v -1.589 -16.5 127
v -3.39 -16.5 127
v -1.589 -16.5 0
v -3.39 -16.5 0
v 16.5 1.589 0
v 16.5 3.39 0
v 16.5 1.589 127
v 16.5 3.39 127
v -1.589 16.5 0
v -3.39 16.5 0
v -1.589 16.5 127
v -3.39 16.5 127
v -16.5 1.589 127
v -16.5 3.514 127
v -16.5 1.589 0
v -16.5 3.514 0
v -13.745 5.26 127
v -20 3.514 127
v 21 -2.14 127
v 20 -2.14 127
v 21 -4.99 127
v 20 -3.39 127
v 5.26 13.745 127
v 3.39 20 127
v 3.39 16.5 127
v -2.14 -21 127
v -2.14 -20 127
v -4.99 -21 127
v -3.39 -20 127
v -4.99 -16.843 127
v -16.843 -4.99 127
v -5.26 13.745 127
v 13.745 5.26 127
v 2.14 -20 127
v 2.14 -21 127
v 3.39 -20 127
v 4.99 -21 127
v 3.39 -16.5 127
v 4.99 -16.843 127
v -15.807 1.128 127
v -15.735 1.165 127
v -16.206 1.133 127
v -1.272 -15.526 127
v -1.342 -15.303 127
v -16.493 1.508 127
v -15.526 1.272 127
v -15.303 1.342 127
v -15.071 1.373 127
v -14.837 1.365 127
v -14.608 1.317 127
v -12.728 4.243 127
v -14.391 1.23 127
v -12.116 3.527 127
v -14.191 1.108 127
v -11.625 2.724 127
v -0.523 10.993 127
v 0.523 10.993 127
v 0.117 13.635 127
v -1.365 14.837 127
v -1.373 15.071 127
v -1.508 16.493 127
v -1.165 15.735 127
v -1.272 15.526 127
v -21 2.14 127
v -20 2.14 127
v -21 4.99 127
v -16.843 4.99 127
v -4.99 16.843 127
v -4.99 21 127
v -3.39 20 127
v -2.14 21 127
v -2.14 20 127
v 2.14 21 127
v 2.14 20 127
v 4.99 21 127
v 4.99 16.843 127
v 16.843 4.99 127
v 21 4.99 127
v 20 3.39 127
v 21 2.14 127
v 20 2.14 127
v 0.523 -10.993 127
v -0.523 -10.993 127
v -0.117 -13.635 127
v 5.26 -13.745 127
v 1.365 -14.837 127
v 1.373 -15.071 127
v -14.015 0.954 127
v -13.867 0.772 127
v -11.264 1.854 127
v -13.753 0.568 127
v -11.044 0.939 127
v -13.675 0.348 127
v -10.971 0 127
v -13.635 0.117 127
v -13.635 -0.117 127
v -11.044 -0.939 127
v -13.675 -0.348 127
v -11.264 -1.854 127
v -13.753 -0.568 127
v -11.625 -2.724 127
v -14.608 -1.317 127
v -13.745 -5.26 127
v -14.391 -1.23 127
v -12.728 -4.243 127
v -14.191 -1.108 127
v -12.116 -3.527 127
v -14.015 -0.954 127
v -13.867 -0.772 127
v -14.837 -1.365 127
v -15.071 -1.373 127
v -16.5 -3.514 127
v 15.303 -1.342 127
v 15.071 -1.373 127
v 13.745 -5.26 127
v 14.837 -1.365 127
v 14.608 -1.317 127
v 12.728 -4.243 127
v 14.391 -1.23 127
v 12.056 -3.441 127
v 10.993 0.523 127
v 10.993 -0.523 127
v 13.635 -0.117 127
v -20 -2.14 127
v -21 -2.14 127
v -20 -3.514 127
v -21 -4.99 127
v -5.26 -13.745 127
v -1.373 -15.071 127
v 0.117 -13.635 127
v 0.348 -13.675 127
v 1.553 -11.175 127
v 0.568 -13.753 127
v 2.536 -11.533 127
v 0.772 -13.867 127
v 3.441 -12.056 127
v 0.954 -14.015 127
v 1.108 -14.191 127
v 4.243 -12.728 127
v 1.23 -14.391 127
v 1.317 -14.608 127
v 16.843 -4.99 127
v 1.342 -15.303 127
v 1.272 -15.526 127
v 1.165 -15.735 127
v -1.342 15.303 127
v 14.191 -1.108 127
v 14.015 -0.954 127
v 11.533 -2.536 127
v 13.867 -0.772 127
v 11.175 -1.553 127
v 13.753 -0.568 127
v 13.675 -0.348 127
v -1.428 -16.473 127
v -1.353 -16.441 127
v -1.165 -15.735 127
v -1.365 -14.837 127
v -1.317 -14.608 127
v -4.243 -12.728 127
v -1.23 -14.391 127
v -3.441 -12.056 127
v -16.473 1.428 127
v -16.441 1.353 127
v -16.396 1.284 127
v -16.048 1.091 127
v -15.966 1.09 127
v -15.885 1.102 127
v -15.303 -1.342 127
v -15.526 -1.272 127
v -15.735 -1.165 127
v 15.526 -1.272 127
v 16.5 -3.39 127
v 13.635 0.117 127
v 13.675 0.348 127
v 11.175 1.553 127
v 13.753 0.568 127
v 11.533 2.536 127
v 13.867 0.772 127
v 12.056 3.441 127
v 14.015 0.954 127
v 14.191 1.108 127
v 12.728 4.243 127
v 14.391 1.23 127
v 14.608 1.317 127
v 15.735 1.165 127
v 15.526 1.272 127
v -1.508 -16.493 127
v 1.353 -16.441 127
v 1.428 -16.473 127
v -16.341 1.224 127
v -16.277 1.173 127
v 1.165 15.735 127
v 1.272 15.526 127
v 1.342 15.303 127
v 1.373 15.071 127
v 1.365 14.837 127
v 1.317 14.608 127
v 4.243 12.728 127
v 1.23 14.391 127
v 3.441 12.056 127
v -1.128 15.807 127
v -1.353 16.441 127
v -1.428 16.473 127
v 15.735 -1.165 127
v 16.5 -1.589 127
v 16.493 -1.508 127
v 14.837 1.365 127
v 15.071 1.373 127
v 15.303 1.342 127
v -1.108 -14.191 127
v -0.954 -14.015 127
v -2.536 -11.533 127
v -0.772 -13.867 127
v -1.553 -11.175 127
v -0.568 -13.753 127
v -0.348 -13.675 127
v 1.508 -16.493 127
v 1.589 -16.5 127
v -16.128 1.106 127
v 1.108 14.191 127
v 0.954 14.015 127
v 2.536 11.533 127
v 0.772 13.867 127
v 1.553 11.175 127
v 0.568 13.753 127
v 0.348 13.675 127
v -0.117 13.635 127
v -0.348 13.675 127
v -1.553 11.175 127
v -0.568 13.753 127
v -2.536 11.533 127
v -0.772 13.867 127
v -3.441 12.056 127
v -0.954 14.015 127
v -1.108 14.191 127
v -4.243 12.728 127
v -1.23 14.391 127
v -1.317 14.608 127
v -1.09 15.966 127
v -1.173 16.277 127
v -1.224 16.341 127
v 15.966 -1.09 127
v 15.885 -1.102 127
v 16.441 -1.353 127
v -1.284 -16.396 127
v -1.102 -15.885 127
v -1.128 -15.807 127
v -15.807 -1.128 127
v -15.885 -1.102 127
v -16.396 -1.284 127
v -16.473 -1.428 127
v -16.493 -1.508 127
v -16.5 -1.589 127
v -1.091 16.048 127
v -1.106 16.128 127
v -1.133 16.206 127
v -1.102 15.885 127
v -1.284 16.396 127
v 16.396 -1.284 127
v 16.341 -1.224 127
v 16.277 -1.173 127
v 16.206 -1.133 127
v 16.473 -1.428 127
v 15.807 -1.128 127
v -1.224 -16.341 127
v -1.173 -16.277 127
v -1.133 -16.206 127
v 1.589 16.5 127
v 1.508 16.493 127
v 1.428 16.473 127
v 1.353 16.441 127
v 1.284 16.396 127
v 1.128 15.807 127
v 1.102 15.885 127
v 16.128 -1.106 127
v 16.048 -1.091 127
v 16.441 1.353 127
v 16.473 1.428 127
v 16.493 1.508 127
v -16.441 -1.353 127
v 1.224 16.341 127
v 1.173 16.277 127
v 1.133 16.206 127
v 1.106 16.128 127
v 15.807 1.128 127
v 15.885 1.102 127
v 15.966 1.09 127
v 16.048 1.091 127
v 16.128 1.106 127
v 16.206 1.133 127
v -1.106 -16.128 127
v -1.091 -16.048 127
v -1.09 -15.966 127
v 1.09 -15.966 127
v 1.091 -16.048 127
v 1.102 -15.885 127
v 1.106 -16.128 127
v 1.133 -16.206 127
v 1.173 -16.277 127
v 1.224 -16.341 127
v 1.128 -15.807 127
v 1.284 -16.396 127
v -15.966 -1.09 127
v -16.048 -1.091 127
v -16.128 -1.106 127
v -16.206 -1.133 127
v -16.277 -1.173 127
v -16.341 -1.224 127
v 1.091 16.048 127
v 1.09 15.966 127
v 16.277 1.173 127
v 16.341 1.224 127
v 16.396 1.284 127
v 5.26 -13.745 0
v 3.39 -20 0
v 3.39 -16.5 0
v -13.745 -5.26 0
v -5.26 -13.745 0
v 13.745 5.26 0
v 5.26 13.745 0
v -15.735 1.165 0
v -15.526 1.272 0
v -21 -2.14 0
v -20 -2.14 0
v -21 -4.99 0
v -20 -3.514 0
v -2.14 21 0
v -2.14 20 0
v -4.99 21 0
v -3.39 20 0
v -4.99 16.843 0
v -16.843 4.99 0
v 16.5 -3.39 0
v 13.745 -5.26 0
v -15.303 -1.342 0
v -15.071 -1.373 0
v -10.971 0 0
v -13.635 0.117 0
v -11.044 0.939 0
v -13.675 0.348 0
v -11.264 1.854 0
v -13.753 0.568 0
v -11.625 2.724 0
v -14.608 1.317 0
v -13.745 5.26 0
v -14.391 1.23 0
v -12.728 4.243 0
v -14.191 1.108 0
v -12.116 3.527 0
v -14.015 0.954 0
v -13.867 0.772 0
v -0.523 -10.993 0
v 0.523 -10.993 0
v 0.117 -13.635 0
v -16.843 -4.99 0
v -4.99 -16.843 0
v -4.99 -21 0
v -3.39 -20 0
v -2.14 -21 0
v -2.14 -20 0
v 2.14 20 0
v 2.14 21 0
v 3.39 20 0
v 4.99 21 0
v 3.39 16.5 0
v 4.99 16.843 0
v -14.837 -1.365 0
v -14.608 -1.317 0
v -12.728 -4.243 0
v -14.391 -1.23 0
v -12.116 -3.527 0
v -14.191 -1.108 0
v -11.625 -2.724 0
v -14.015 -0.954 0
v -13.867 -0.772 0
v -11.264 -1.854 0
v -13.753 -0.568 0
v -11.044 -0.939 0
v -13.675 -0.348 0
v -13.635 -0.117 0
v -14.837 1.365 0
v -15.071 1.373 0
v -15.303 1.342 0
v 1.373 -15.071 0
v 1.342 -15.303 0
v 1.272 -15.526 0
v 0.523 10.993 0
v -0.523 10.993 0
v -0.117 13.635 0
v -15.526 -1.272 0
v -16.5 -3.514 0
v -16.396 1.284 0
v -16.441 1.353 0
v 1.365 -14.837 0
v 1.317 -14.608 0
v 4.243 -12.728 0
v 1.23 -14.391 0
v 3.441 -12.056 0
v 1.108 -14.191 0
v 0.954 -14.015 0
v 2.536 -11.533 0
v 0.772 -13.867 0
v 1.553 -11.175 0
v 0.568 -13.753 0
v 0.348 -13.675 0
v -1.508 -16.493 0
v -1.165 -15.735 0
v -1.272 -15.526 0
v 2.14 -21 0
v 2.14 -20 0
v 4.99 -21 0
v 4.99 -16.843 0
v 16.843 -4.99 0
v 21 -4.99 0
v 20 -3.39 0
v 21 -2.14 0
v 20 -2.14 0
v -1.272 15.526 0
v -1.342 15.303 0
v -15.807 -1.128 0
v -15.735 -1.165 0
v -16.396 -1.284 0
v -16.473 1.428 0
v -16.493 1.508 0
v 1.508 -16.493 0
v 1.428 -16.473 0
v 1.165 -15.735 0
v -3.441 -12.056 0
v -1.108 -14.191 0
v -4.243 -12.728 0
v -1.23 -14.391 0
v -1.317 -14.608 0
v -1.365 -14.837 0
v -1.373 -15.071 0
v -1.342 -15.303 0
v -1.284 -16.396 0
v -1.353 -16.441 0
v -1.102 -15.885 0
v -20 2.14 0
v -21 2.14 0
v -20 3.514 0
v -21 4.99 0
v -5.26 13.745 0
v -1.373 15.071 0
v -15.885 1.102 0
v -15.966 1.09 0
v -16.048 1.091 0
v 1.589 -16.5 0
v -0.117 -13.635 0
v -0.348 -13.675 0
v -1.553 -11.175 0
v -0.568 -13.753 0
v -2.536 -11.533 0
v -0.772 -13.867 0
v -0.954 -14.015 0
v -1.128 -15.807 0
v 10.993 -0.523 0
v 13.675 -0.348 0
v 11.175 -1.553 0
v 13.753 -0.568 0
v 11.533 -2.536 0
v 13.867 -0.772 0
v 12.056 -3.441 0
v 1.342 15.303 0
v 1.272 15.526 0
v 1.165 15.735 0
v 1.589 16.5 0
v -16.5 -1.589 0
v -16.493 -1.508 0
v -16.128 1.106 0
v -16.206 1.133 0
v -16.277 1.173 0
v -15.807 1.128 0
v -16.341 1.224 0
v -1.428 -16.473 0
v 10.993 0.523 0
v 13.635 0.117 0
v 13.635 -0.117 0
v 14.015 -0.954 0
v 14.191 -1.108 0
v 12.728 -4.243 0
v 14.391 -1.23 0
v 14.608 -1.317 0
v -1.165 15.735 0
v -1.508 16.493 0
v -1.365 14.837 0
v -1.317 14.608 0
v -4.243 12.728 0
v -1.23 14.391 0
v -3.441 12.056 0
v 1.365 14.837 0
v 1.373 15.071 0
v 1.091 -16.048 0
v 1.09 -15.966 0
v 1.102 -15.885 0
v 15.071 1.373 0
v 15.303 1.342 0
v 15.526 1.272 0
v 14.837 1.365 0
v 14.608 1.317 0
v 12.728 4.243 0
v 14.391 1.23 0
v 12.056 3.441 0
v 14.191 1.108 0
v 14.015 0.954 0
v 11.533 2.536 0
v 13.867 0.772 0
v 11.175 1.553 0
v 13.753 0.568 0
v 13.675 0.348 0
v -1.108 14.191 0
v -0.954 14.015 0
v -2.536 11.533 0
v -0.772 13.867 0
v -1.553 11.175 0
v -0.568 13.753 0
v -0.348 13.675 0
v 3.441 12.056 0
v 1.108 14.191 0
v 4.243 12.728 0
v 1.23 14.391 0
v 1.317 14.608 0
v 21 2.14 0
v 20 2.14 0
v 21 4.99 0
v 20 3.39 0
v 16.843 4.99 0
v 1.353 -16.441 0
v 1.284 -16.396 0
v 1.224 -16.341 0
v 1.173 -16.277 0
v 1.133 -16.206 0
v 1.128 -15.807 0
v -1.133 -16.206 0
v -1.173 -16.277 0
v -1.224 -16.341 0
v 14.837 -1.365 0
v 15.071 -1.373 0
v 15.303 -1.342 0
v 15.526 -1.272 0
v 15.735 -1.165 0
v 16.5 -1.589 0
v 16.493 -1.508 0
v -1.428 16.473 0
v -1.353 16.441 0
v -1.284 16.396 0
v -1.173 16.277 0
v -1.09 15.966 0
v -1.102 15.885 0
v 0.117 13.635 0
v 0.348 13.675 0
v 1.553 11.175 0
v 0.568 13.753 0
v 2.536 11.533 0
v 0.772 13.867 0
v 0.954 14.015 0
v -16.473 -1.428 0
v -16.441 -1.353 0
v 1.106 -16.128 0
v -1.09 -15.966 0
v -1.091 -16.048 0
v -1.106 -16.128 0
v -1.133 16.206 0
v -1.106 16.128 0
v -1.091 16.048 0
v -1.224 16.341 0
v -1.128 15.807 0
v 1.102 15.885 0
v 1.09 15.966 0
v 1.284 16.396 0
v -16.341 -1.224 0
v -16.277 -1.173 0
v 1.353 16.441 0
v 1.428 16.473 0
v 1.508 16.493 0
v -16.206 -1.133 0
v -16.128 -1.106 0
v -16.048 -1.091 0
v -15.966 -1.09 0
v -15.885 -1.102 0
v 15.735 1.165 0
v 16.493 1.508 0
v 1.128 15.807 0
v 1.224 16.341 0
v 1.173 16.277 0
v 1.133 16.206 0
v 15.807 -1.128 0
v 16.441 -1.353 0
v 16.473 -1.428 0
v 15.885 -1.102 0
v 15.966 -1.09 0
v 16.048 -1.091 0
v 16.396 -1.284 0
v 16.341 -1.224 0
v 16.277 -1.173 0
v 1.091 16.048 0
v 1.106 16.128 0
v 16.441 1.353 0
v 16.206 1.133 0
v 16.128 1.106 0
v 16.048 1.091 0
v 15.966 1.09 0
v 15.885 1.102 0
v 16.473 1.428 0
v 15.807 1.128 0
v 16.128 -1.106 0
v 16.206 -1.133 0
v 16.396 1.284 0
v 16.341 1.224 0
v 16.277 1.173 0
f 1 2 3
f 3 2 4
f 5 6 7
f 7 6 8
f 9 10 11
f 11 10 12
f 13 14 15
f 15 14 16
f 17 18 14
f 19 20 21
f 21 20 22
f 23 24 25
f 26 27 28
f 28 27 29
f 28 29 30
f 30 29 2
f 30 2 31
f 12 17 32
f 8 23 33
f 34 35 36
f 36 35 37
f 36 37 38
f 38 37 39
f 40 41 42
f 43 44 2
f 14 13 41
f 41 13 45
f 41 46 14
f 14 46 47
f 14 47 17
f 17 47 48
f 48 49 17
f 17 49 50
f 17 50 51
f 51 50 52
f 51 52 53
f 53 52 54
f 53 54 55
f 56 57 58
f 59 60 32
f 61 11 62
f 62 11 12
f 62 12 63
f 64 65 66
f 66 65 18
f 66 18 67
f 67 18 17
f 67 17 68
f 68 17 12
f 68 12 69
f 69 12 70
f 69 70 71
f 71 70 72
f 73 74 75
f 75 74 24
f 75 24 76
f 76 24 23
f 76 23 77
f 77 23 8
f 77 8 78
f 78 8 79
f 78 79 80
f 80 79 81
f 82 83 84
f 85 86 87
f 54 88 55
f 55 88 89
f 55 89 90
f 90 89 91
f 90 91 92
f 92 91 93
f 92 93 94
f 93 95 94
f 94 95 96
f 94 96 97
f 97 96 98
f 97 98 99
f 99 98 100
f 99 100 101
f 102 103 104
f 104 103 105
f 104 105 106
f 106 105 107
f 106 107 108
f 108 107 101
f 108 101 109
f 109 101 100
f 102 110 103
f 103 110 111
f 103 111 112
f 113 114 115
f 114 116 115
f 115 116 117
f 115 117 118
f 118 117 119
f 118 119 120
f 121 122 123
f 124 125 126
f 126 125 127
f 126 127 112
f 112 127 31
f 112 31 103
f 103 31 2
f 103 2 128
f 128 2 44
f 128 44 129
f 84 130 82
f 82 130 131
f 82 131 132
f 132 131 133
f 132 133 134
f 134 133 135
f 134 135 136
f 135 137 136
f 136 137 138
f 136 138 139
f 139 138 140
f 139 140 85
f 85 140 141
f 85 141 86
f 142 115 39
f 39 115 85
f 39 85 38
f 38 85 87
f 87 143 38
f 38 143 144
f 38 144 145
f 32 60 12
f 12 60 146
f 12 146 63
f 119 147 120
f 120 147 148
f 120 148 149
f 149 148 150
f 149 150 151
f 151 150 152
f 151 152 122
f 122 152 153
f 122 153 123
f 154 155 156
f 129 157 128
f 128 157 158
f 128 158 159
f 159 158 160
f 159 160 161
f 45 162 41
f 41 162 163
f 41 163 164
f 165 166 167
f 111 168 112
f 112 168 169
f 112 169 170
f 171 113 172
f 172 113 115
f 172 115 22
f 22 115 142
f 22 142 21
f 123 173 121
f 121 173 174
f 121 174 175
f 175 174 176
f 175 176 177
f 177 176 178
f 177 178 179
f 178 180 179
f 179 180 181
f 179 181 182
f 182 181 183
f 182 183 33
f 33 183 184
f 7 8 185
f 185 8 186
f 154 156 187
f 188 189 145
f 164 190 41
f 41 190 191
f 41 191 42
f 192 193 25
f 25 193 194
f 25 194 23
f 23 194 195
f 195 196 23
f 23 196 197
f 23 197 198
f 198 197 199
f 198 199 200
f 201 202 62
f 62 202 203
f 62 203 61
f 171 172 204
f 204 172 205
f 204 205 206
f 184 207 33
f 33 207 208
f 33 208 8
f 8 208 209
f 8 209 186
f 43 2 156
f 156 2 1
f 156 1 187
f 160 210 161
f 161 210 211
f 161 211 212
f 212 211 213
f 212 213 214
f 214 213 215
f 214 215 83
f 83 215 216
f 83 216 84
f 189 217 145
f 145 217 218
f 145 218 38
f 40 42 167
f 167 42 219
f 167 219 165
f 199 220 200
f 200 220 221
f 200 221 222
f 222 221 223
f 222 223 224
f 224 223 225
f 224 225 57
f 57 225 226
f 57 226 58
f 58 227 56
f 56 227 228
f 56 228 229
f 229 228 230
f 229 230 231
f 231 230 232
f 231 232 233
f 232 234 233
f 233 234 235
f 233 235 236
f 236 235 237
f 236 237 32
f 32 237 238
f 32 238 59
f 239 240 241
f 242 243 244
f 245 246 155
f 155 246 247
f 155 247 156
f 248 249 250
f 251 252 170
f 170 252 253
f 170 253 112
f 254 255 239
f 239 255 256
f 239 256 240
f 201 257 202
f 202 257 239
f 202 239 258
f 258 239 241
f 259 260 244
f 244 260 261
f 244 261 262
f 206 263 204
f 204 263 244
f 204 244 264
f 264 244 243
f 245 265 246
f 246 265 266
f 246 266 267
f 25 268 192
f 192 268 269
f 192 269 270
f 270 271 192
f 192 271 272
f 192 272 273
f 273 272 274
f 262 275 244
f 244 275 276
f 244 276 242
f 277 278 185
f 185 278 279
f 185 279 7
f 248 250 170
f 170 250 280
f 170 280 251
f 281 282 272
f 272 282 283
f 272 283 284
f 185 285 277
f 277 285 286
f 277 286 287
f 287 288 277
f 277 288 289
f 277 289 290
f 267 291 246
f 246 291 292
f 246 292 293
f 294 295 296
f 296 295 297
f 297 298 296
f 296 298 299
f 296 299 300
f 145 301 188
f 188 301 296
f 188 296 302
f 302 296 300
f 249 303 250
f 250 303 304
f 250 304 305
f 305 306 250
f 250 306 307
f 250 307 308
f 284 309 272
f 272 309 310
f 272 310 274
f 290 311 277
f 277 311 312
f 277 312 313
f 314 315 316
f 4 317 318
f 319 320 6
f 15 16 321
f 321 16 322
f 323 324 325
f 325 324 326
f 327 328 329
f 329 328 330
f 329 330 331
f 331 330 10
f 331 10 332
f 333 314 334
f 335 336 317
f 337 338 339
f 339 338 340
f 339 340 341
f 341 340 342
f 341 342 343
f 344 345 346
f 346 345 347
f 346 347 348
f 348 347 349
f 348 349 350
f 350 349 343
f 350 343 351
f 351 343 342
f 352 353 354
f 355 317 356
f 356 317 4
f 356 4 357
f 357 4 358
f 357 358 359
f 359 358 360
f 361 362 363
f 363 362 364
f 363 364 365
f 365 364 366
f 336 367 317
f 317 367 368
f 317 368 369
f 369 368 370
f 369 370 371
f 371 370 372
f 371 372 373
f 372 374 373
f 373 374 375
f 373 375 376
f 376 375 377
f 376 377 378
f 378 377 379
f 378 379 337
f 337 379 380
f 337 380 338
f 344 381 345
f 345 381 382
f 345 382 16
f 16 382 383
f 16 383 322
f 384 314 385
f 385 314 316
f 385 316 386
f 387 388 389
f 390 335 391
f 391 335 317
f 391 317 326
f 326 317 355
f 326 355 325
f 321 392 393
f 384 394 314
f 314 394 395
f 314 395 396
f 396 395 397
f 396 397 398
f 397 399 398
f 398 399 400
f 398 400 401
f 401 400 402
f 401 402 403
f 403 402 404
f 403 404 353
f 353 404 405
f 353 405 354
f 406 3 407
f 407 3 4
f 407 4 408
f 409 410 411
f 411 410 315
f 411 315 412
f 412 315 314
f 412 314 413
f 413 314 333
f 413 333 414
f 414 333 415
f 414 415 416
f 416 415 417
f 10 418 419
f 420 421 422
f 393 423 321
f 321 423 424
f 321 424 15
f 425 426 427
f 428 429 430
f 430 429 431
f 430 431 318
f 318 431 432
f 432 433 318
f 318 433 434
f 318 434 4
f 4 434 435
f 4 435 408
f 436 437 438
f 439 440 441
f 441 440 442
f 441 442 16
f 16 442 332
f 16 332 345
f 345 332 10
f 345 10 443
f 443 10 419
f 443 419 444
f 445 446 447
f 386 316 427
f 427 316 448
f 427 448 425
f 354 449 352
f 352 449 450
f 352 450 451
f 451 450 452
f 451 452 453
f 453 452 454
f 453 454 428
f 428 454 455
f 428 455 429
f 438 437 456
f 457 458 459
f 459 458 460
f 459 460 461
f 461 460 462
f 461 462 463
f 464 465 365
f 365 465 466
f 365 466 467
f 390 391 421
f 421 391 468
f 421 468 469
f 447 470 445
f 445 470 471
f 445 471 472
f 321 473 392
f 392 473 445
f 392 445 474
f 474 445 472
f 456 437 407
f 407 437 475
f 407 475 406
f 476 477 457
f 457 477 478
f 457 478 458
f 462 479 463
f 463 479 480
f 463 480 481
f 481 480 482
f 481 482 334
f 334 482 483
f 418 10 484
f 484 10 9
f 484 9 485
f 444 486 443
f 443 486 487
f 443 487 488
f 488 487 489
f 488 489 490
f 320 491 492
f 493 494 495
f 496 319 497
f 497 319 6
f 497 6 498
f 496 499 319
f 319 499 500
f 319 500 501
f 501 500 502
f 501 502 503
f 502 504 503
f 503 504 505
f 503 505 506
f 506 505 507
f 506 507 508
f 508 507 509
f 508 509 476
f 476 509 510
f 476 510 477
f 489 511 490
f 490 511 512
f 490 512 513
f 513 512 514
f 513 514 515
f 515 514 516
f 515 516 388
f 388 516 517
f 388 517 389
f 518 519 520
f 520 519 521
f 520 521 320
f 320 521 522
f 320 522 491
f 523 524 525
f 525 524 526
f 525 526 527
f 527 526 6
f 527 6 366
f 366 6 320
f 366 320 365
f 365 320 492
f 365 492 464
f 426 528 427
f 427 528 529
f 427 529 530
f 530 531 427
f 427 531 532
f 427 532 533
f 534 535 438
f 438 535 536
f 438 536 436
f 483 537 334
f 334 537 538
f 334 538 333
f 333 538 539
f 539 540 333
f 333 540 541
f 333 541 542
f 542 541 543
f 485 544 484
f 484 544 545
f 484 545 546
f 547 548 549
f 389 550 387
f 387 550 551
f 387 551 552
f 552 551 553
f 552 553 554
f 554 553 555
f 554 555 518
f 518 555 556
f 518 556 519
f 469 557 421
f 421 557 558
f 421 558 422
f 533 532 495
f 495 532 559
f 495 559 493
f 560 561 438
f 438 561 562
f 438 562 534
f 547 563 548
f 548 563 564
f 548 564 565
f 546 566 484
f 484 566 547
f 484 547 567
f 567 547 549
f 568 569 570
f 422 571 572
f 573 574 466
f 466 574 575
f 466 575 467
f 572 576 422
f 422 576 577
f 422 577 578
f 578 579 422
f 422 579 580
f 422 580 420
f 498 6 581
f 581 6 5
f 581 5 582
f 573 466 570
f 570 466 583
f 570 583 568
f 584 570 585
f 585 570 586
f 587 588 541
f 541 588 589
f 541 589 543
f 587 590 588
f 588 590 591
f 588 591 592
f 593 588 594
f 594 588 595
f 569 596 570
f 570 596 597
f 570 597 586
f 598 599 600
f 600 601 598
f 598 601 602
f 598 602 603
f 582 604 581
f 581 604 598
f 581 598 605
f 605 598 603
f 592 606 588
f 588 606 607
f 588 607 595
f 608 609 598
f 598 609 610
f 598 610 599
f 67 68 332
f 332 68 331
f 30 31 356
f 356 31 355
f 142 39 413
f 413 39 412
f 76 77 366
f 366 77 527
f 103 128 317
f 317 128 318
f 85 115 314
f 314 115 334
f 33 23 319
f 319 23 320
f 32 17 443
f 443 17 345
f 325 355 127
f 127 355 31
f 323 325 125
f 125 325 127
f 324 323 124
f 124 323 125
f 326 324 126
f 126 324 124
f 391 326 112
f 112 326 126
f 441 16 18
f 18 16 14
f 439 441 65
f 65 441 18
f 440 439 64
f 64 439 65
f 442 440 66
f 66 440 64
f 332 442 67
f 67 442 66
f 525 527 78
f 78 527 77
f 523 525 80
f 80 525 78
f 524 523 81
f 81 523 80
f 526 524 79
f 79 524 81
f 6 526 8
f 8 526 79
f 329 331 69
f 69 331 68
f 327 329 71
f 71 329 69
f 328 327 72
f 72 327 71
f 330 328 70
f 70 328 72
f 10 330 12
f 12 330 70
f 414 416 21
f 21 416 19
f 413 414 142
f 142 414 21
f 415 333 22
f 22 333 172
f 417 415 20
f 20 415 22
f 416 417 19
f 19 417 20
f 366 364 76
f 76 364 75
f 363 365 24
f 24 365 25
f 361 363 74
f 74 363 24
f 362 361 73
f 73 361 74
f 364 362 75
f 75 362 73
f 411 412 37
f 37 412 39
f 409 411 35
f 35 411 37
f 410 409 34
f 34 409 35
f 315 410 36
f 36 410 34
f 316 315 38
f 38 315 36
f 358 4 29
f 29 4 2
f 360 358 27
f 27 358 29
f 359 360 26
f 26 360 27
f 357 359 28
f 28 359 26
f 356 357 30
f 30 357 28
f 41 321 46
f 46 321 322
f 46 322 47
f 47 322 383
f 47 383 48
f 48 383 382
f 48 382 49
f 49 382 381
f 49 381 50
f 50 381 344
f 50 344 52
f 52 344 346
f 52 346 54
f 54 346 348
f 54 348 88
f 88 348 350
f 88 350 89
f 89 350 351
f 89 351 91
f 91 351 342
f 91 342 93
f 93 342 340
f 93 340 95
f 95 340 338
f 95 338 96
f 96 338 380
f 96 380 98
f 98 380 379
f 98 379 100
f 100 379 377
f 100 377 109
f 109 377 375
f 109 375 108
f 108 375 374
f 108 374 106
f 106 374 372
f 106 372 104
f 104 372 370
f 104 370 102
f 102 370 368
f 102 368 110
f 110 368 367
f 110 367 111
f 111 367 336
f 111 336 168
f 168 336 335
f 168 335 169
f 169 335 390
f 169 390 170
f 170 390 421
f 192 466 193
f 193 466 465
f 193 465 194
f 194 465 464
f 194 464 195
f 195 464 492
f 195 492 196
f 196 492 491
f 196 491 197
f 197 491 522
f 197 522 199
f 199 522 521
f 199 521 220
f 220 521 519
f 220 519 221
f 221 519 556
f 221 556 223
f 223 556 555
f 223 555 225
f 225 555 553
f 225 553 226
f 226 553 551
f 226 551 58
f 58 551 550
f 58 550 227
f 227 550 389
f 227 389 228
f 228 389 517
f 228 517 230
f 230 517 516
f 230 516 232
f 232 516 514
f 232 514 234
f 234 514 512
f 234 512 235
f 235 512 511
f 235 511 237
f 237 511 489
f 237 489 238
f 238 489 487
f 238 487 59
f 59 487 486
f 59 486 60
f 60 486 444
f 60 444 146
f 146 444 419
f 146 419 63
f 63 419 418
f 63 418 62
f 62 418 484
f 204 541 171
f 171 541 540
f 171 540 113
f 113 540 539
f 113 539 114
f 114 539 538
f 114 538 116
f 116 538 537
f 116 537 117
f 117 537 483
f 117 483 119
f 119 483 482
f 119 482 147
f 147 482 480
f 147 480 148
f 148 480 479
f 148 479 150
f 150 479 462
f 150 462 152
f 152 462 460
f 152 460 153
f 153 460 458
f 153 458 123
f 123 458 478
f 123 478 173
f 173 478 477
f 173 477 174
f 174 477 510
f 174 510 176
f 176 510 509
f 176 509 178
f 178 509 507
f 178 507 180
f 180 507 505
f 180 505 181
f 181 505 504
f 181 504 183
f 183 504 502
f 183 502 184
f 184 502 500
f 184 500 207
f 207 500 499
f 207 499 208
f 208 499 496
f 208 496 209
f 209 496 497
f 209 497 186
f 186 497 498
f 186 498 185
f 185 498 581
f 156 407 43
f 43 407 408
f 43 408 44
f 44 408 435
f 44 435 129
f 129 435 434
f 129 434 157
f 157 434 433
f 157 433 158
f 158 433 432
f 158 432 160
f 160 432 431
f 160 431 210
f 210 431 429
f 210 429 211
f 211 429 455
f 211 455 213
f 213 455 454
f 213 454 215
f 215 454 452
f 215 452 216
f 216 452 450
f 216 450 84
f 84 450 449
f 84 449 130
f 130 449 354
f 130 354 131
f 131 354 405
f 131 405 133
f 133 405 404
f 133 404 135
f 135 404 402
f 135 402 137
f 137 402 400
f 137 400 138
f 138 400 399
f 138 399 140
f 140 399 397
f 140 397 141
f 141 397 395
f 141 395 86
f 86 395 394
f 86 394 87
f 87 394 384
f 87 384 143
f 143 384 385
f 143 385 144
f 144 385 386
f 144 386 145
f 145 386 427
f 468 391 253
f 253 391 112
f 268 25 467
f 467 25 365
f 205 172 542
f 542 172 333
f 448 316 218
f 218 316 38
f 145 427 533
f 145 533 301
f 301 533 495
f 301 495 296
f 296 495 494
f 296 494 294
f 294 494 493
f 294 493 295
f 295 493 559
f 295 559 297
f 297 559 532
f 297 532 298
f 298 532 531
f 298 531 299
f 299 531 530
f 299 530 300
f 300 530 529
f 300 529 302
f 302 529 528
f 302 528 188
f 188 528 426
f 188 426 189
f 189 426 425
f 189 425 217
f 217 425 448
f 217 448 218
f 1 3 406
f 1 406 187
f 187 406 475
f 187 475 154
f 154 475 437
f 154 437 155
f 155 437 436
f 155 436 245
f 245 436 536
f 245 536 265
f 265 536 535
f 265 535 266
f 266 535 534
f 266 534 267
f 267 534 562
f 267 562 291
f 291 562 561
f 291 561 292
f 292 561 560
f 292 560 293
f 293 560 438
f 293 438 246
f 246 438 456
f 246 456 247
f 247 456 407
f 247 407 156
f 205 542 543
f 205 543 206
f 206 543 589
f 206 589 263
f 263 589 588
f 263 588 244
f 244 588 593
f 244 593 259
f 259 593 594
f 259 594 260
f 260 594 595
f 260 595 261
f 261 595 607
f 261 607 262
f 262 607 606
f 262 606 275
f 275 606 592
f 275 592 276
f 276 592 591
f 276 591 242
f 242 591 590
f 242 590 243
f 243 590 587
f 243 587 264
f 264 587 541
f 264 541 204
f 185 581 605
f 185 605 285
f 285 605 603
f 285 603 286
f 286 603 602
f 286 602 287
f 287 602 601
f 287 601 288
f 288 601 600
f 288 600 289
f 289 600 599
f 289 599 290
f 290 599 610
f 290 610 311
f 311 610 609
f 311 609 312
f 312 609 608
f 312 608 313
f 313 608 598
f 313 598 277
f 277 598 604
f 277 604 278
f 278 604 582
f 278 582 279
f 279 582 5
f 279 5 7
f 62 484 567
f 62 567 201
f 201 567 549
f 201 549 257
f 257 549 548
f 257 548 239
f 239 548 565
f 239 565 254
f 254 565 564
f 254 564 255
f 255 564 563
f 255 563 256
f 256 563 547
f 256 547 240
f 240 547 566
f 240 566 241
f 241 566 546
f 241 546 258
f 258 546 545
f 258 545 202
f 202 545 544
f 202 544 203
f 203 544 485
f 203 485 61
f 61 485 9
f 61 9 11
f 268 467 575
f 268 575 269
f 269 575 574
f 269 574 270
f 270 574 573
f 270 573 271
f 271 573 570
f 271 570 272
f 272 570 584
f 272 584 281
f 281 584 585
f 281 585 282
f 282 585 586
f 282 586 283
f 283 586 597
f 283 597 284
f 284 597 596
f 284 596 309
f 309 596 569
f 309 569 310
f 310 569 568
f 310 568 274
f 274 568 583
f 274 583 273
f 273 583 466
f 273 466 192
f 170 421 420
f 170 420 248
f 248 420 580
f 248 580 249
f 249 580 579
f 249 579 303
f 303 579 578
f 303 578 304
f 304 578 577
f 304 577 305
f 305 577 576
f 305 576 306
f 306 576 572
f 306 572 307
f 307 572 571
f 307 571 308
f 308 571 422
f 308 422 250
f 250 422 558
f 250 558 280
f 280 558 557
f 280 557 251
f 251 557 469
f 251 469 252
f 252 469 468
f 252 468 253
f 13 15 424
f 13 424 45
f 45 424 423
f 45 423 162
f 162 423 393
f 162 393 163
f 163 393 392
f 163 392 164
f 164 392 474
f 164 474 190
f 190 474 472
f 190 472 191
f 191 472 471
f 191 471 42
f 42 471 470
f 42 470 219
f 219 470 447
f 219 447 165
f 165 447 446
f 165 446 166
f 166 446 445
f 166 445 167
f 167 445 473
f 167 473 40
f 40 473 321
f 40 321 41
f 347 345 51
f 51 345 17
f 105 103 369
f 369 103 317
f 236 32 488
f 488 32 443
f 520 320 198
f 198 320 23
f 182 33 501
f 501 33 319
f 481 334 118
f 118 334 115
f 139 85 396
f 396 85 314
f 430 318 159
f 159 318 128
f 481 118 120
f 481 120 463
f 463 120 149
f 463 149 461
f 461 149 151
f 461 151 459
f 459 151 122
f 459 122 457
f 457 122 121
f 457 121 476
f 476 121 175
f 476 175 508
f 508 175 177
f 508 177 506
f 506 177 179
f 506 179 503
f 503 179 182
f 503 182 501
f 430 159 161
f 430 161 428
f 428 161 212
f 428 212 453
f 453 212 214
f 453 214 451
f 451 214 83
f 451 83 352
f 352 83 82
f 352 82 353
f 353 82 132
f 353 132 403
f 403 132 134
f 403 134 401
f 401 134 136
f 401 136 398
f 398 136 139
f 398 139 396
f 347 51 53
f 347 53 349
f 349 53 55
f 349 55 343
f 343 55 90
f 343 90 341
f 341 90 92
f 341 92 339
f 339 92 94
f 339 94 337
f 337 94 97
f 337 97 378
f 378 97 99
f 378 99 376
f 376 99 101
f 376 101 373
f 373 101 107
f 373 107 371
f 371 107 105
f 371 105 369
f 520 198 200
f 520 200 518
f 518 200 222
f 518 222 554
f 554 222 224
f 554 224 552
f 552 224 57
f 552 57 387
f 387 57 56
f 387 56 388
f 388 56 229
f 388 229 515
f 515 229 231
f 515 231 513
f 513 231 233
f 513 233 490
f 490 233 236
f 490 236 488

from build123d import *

# Parameters (mm, degrees)
BOSS_EXTRUDE1_DEPTH = 127
BOSS_EXTRUDE4_DEPTH = 127
SKETCH7_R           = 1.375
SKETCH7_R_2         = 1.375000009
SKETCH7_R_3         = 1.374999997
SKETCH7_W           = 3.5
SKETCH7_H           = 7.028015283
SKETCH7_W_2         = 6.780603604
SKETCH7_H_2         = 3.5
SKETCH7_H_3         = 6.780603604
CUT_EXTRUDE2_DEPTH  = 131.426224357
SKETCH8_W           = 2.834613859
SKETCH8_H           = 1
SKETCH8_W_2         = 1
SKETCH8_H_2         = 2.748258962
SKETCH8_W_3         = 3.182807673
SKETCH8_H_3         = 2.560440129
CUT_EXTRUDE3_DEPTH  = 131.426224357
FILLET3_R           = 0.5
FILLET4_R           = 0.5
BOSS_EXTRUDE6_DEPTH = 127
FILLET5_R           = 6


# Some blends are built 0.0001 mm under size
with BuildPart() as part:
    # Sketch1 → Boss-Extrude1 (new body)
    with BuildSketch(Plane.XY):
        Polygon((4.990301802, 16.842973424), (16.842973424, 4.990301802), (16.842973424, -4.990301802), (4.990301802, -16.842973424), (-4.990301802, -16.842973424), (-16.842973424, -4.990301802), (-16.842973424, 4.990301802), (-4.990301802, 16.842973424), align=None)
        with BuildLine():
            Line((-13.745064738, 5.259783364), (-5.259783364, 13.745064738))
            ThreePointArc((-5.259783364, 13.745064738), (0, 11.566391134), (5.259783364, 13.745064738))
            Line((5.259783364, 13.745064738), (13.745064738, 5.259783364))
            ThreePointArc((13.745064738, 5.259783364), (11.566391134, 0), (13.745064738, -5.259783364))
            Line((13.745064738, -5.259783364), (5.259783364, -13.745064738))
            ThreePointArc((5.259783364, -13.745064738), (0, -11.566391134), (-5.259783364, -13.745064738))
            Line((-5.259783364, -13.745064738), (-13.745064738, -5.259783364))
            ThreePointArc((-13.745064738, -5.259783364), (-11.566391134, 0), (-13.745064738, 5.259783364))
        make_face(mode=Mode.SUBTRACT)
    extrude(amount=BOSS_EXTRUDE1_DEPTH)

    # Sketch5 → Boss-Extrude4 (add, through all)
    with BuildSketch(Plane.XY.offset(127)):
        Polygon((-16.842973424, -4.990301802), (-21, -4.990301802), (-21, -2.140301802), (-20, -2.140301802), (-20, -3.513722258), (-16.842973424, -3.513722258), align=None)
        Polygon((-16.842973424, 4.990301802), (-21, 4.990301802), (-21, 2.140301802), (-20, 2.140301802), (-20, 3.514293025), (-16.842973424, 3.514293025), align=None)
        Polygon((16.842973424, 4.990301802), (21, 4.990301802), (21, 2.140301802), (20, 2.140301802), (20, 3.390301802), (16.842973424, 3.390301802), align=None)
        Polygon((21, -4.990301802), (16.842973424, -4.990301802), (16.842973424, -3.390301802), (20, -3.390301802), (20, -2.140301802), (21, -2.140301802), align=None)
        Polygon((3.390301802, 16.842973424), (4.990301802, 16.842973424), (4.990301802, 21), (2.140301802, 21), (2.140301802, 20), (3.390301802, 20), align=None)
        Polygon((-4.990301802, 16.842973424), (-4.990301802, 21), (-2.140301802, 21), (-2.140301802, 20), (-3.390301802, 20), (-3.390301802, 16.842973424), align=None)
        Polygon((4.990301802, -16.842973424), (4.990301802, -21), (2.140301802, -21), (2.140301802, -20), (3.390301802, -20), (3.390301802, -16.842973424), align=None)
        Polygon((-4.990301802, -16.842973424), (-4.990301802, -21), (-2.140301802, -21), (-2.140301802, -20), (-3.390301802, -20), (-3.390301802, -16.842973424), align=None)
    extrude(amount=-BOSS_EXTRUDE4_DEPTH)

    # Sketch7 → Cut-Extrude2 (cut, through all)
    with BuildSketch(Plane.XY):
        with Locations(Location((-15.004848102, 0, 0), (0, 0, 180))):
            Circle(SKETCH7_R)
        with Locations(Location((3e-09, 15.004848102, 0), (0, 0, 180))):
            Circle(SKETCH7_R)
        with Locations(Location((15.004848102, -2.203e-06, 0), (0, 0, 180))):
            Circle(SKETCH7_R_2)
        with Locations(Location((0, -15.004848102, 0), (0, 0, 180))):
            Circle(SKETCH7_R_3)
        with Locations((-18.25, 0.000285384)):
            Rectangle(SKETCH7_W, SKETCH7_H)
        with Locations((0, 18.25)):
            Rectangle(SKETCH7_W_2, SKETCH7_H_2)
        with Locations((18.25, 0)):
            Rectangle(SKETCH7_W, SKETCH7_H_3)
        with Locations((0, -18.25)):
            Rectangle(SKETCH7_W_2, SKETCH7_H_2)
    extrude(amount=CUT_EXTRUDE2_DEPTH, mode=Mode.SUBTRACT)

    # Sketch8 → Cut-Extrude3 (cut, through all)
    with BuildSketch(Plane.XY.offset(127)):
        with Locations((-16.422155032, 0)):
            Rectangle(SKETCH8_W, SKETCH8_H)
        with Locations((0, 16.378977583)):
            Rectangle(SKETCH8_W_2, SKETCH8_H_2)
        with Locations((16.596251939, 0)):
            Rectangle(SKETCH8_W_3, SKETCH8_H)
        with Locations((0, -16.285068167)):
            Rectangle(SKETCH8_W_2, SKETCH8_H_3)
    extrude(amount=-CUT_EXTRUDE3_DEPTH, mode=Mode.SUBTRACT)

    # Fillet3
    # the kernel refuses this fillet: 0.5 mm, written as the material it takes off along each edge
    with BuildSketch(Plane(origin=(-16.5, 0.5, -1.025810125), x_dir=(0, 1, 0), z_dir=(0, 0, 1))) as fillet3_piece_1:
        with BuildLine():
            CenterArc((0.41032405, -0.5), FILLET3_R, 90, 55.149723763)
            Line((0, -0.214283053), (-0.008206481, -0.208568714))
            ThreePointArc((-0.008206481, -0.208568714), (-0.01, -0.107141526), (-0.01, 0))
            Line((-0.01, 0), (0, 0.01))
            Line((0, 0.01), (0.41032405, 0.01))
            Line((0.41032405, 0.01), (0.41032405, 0))
        make_face()
    extrude(amount=129.05162025, mode=Mode.SUBTRACT)
    with BuildSketch(Plane(origin=(0.5, -16.5, -1.02581013), x_dir=(5.296643708926083e-12, 1.0, 0), z_dir=(0, 0, 1))) as fillet3_piece_2:
        with BuildLine():
            CenterArc((0.5, -0.410324052), FILLET3_R, 124.850275833, 55.149724167)
            Line((0, -0.410324052), (-0.01, -0.410324052))
            Line((-0.01, -0.410324052), (-0.01, 0))
            Line((-0.01, 0), (0, 0.01))
            ThreePointArc((0, 0.01), (0.107141528, 0.01), (0.208568717, 0.008206481))
            Line((0.208568717, 0.008206481), (0.214283056, 0))
        make_face()
    extrude(amount=129.05162026, mode=Mode.SUBTRACT)
    with BuildSketch(Plane(origin=(-0.5, -16.5, 128.02581013), x_dir=(-1, 0, 0), z_dir=(0, 0, -1))) as fillet3_piece_3:
        with BuildLine():
            CenterArc((0.410324052, 0.5), FILLET3_R, 214.850275833, 55.149724167)
            Line((0, 0.214283056), (-0.008206481, 0.208568717))
            ThreePointArc((-0.008206481, 0.208568717), (-0.01, 0.107141528), (-0.01, 0))
            Line((-0.01, 0), (0, -0.01))
            Line((0, -0.01), (0.410324052, -0.01))
            Line((0.410324052, -0.01), (0.410324052, 0))
        make_face()
    extrude(amount=129.05162026, mode=Mode.SUBTRACT)
    with BuildSketch(Plane(origin=(16.5, -0.5, -1.025808612), x_dir=(0, -1, 0), z_dir=(0, 0, 1))) as fillet3_piece_4:
        with BuildLine():
            CenterArc((0.410323445, -0.5), FILLET3_R, 90, 55.149602377)
            Line((0, -0.214282183), (-0.008206469, -0.208567827))
            ThreePointArc((-0.008206469, -0.208567827), (-0.01, -0.107141092), (-0.01, 0))
            Line((-0.01, 0), (0, 0.01))
            Line((0, 0.01), (0.410323445, 0.01))
            Line((0.410323445, 0.01), (0.410323445, 0))
        make_face()
    extrude(amount=129.051617223, mode=Mode.SUBTRACT)
    with BuildSketch(Plane(origin=(16.5, 0.5, 128.025811605), x_dir=(-1.0, 5.295068435052625e-12, 0), z_dir=(0, 0, -1))) as fillet3_piece_5:
        with BuildLine():
            CenterArc((0.5, 0.410324642), FILLET3_R, 180, 55.149842509)
            Line((0, 0.410324642), (-0.01, 0.410324642))
            Line((-0.01, 0.410324642), (-0.01, 0))
            Line((-0.01, 0), (0, -0.01))
            ThreePointArc((0, -0.01), (0.107141952, -0.01), (0.208569581, -0.008206493))
            Line((0.208569581, -0.008206493), (0.214283903, 0))
        make_face()
    extrude(amount=129.051623211, mode=Mode.SUBTRACT)
    with BuildSketch(Plane(origin=(-0.5, 16.5, -1.025810127), x_dir=(-5.291980756940643e-12, -1.0, 0), z_dir=(0, 0, 1))) as fillet3_piece_6:
        with BuildLine():
            CenterArc((0.5, -0.410324051), FILLET3_R, 124.850276074, 55.149723926)
            Line((0, -0.410324051), (-0.01, -0.410324051))
            Line((-0.01, -0.410324051), (-0.01, 0))
            Line((-0.01, 0), (0, 0.01))
            ThreePointArc((0, 0.01), (0.107141527, 0.01), (0.208568715, 0.008206481))
            Line((0.208568715, 0.008206481), (0.214283054, 0))
        make_face()
    extrude(amount=129.051620254, mode=Mode.SUBTRACT)
    with BuildSketch(Plane(origin=(0.5, 16.5, 128.025810123), x_dir=(1, 0, 0), z_dir=(0, 0, -1))) as fillet3_piece_7:
        with BuildLine():
            CenterArc((0.410324049, 0.5), FILLET3_R, 214.8502764, 55.1497236)
            Line((0, 0.214283051), (-0.008206481, 0.208568713))
            ThreePointArc((-0.008206481, 0.208568713), (-0.01, 0.107141526), (-0.01, 0))
            Line((-0.01, 0), (0, -0.01))
            Line((0, -0.01), (0.410324049, -0.01))
            Line((0.410324049, -0.01), (0.410324049, 0))
        make_face()
    extrude(amount=129.051620246, mode=Mode.SUBTRACT)
    with BuildSketch(Plane(origin=(-16.5, -0.5, 128.025810125), x_dir=(1.0, -5.296125669893669e-12, 0), z_dir=(0, 0, -1))) as fillet3_piece_8:
        with BuildLine():
            CenterArc((0.5, 0.41032405), FILLET3_R, 180, 55.149723763)
            Line((0, 0.41032405), (-0.01, 0.41032405))
            Line((-0.01, 0.41032405), (-0.01, 0))
            Line((-0.01, 0), (0, -0.01))
            ThreePointArc((0, -0.01), (0.107141526, -0.01), (0.208568714, -0.008206481))
            Line((0.208568714, -0.008206481), (0.214283053, 0))
        make_face()
    extrude(amount=129.05162025, mode=Mode.SUBTRACT)

    # Fillet4
    fillet4_edges = [part.edges().sort_by_distance(p)[0] for p in [
        (-16.285716947, 0.5, 63.5),
        (0.5, -16.285716944, 63.5),
        (-0.5, -16.285716944, 63.5),
        (16.285717817, -0.5, 63.5),
        (16.285716097, 0.5, 63.5),
        (-0.5, 16.285716946, 63.5),
        (0.5, 16.285716949, 63.5),
        (-16.285716947, -0.5, 63.5),
    ]]
    fillet(fillet4_edges, radius=FILLET4_R - 0.0001)  # a hair under: the kernel refuses the full size

    # Sketch9 → Boss-Extrude6 (add, through all)
    with BuildSketch(Plane.XY.offset(127)):
        with BuildLine():
            Line((-4.990301802, 16.842973424), (-16.842973424, 4.990301802))
            ThreePointArc((-16.842973424, 4.990301802), (-11.852671623, 0), (-16.842973424, -4.990301802))
            Line((-16.842973424, -4.990301802), (-4.990301802, -16.842973424))
            ThreePointArc((-4.990301802, -16.842973424), (0, -11.852671623), (4.990301802, -16.842973424))
            Line((4.990301802, -16.842973424), (16.842973424, -4.990301802))
            ThreePointArc((16.842973424, -4.990301802), (11.852671623, 0), (16.842973424, 4.990301802))
            Line((16.842973424, 4.990301802), (4.990301802, 16.842973424))
            ThreePointArc((4.990301802, 16.842973424), (0, 11.852671623), (-4.990301802, 16.842973424))
        make_face()
        Polygon((-5.259783364, 13.745064738), (-13.745064738, 5.259783364), (-8.485281374, 0), (-13.745064738, -5.259783364), (-5.259783364, -13.745064738), (0, -8.485281374), (5.259783364, -13.745064738), (13.745064738, -5.259783364), (8.485281374, 0), (13.745064738, 5.259783364), (5.259783364, 13.745064738), (0, 8.485281374), align=None, mode=Mode.SUBTRACT)
    extrude(amount=-BOSS_EXTRUDE6_DEPTH)

    # Fillet5
    fillet5_edges = [part.edges().sort_by_distance(p)[0] for p in [
        (0, 8.485281374, 63.5),
        (8.485281374, 0, 63.5),
        (0, -8.485281374, 63.5),
        (-8.485281374, 0, 63.5),
    ]]
    fillet(fillet5_edges, radius=FILLET5_R)


solid = part.part
